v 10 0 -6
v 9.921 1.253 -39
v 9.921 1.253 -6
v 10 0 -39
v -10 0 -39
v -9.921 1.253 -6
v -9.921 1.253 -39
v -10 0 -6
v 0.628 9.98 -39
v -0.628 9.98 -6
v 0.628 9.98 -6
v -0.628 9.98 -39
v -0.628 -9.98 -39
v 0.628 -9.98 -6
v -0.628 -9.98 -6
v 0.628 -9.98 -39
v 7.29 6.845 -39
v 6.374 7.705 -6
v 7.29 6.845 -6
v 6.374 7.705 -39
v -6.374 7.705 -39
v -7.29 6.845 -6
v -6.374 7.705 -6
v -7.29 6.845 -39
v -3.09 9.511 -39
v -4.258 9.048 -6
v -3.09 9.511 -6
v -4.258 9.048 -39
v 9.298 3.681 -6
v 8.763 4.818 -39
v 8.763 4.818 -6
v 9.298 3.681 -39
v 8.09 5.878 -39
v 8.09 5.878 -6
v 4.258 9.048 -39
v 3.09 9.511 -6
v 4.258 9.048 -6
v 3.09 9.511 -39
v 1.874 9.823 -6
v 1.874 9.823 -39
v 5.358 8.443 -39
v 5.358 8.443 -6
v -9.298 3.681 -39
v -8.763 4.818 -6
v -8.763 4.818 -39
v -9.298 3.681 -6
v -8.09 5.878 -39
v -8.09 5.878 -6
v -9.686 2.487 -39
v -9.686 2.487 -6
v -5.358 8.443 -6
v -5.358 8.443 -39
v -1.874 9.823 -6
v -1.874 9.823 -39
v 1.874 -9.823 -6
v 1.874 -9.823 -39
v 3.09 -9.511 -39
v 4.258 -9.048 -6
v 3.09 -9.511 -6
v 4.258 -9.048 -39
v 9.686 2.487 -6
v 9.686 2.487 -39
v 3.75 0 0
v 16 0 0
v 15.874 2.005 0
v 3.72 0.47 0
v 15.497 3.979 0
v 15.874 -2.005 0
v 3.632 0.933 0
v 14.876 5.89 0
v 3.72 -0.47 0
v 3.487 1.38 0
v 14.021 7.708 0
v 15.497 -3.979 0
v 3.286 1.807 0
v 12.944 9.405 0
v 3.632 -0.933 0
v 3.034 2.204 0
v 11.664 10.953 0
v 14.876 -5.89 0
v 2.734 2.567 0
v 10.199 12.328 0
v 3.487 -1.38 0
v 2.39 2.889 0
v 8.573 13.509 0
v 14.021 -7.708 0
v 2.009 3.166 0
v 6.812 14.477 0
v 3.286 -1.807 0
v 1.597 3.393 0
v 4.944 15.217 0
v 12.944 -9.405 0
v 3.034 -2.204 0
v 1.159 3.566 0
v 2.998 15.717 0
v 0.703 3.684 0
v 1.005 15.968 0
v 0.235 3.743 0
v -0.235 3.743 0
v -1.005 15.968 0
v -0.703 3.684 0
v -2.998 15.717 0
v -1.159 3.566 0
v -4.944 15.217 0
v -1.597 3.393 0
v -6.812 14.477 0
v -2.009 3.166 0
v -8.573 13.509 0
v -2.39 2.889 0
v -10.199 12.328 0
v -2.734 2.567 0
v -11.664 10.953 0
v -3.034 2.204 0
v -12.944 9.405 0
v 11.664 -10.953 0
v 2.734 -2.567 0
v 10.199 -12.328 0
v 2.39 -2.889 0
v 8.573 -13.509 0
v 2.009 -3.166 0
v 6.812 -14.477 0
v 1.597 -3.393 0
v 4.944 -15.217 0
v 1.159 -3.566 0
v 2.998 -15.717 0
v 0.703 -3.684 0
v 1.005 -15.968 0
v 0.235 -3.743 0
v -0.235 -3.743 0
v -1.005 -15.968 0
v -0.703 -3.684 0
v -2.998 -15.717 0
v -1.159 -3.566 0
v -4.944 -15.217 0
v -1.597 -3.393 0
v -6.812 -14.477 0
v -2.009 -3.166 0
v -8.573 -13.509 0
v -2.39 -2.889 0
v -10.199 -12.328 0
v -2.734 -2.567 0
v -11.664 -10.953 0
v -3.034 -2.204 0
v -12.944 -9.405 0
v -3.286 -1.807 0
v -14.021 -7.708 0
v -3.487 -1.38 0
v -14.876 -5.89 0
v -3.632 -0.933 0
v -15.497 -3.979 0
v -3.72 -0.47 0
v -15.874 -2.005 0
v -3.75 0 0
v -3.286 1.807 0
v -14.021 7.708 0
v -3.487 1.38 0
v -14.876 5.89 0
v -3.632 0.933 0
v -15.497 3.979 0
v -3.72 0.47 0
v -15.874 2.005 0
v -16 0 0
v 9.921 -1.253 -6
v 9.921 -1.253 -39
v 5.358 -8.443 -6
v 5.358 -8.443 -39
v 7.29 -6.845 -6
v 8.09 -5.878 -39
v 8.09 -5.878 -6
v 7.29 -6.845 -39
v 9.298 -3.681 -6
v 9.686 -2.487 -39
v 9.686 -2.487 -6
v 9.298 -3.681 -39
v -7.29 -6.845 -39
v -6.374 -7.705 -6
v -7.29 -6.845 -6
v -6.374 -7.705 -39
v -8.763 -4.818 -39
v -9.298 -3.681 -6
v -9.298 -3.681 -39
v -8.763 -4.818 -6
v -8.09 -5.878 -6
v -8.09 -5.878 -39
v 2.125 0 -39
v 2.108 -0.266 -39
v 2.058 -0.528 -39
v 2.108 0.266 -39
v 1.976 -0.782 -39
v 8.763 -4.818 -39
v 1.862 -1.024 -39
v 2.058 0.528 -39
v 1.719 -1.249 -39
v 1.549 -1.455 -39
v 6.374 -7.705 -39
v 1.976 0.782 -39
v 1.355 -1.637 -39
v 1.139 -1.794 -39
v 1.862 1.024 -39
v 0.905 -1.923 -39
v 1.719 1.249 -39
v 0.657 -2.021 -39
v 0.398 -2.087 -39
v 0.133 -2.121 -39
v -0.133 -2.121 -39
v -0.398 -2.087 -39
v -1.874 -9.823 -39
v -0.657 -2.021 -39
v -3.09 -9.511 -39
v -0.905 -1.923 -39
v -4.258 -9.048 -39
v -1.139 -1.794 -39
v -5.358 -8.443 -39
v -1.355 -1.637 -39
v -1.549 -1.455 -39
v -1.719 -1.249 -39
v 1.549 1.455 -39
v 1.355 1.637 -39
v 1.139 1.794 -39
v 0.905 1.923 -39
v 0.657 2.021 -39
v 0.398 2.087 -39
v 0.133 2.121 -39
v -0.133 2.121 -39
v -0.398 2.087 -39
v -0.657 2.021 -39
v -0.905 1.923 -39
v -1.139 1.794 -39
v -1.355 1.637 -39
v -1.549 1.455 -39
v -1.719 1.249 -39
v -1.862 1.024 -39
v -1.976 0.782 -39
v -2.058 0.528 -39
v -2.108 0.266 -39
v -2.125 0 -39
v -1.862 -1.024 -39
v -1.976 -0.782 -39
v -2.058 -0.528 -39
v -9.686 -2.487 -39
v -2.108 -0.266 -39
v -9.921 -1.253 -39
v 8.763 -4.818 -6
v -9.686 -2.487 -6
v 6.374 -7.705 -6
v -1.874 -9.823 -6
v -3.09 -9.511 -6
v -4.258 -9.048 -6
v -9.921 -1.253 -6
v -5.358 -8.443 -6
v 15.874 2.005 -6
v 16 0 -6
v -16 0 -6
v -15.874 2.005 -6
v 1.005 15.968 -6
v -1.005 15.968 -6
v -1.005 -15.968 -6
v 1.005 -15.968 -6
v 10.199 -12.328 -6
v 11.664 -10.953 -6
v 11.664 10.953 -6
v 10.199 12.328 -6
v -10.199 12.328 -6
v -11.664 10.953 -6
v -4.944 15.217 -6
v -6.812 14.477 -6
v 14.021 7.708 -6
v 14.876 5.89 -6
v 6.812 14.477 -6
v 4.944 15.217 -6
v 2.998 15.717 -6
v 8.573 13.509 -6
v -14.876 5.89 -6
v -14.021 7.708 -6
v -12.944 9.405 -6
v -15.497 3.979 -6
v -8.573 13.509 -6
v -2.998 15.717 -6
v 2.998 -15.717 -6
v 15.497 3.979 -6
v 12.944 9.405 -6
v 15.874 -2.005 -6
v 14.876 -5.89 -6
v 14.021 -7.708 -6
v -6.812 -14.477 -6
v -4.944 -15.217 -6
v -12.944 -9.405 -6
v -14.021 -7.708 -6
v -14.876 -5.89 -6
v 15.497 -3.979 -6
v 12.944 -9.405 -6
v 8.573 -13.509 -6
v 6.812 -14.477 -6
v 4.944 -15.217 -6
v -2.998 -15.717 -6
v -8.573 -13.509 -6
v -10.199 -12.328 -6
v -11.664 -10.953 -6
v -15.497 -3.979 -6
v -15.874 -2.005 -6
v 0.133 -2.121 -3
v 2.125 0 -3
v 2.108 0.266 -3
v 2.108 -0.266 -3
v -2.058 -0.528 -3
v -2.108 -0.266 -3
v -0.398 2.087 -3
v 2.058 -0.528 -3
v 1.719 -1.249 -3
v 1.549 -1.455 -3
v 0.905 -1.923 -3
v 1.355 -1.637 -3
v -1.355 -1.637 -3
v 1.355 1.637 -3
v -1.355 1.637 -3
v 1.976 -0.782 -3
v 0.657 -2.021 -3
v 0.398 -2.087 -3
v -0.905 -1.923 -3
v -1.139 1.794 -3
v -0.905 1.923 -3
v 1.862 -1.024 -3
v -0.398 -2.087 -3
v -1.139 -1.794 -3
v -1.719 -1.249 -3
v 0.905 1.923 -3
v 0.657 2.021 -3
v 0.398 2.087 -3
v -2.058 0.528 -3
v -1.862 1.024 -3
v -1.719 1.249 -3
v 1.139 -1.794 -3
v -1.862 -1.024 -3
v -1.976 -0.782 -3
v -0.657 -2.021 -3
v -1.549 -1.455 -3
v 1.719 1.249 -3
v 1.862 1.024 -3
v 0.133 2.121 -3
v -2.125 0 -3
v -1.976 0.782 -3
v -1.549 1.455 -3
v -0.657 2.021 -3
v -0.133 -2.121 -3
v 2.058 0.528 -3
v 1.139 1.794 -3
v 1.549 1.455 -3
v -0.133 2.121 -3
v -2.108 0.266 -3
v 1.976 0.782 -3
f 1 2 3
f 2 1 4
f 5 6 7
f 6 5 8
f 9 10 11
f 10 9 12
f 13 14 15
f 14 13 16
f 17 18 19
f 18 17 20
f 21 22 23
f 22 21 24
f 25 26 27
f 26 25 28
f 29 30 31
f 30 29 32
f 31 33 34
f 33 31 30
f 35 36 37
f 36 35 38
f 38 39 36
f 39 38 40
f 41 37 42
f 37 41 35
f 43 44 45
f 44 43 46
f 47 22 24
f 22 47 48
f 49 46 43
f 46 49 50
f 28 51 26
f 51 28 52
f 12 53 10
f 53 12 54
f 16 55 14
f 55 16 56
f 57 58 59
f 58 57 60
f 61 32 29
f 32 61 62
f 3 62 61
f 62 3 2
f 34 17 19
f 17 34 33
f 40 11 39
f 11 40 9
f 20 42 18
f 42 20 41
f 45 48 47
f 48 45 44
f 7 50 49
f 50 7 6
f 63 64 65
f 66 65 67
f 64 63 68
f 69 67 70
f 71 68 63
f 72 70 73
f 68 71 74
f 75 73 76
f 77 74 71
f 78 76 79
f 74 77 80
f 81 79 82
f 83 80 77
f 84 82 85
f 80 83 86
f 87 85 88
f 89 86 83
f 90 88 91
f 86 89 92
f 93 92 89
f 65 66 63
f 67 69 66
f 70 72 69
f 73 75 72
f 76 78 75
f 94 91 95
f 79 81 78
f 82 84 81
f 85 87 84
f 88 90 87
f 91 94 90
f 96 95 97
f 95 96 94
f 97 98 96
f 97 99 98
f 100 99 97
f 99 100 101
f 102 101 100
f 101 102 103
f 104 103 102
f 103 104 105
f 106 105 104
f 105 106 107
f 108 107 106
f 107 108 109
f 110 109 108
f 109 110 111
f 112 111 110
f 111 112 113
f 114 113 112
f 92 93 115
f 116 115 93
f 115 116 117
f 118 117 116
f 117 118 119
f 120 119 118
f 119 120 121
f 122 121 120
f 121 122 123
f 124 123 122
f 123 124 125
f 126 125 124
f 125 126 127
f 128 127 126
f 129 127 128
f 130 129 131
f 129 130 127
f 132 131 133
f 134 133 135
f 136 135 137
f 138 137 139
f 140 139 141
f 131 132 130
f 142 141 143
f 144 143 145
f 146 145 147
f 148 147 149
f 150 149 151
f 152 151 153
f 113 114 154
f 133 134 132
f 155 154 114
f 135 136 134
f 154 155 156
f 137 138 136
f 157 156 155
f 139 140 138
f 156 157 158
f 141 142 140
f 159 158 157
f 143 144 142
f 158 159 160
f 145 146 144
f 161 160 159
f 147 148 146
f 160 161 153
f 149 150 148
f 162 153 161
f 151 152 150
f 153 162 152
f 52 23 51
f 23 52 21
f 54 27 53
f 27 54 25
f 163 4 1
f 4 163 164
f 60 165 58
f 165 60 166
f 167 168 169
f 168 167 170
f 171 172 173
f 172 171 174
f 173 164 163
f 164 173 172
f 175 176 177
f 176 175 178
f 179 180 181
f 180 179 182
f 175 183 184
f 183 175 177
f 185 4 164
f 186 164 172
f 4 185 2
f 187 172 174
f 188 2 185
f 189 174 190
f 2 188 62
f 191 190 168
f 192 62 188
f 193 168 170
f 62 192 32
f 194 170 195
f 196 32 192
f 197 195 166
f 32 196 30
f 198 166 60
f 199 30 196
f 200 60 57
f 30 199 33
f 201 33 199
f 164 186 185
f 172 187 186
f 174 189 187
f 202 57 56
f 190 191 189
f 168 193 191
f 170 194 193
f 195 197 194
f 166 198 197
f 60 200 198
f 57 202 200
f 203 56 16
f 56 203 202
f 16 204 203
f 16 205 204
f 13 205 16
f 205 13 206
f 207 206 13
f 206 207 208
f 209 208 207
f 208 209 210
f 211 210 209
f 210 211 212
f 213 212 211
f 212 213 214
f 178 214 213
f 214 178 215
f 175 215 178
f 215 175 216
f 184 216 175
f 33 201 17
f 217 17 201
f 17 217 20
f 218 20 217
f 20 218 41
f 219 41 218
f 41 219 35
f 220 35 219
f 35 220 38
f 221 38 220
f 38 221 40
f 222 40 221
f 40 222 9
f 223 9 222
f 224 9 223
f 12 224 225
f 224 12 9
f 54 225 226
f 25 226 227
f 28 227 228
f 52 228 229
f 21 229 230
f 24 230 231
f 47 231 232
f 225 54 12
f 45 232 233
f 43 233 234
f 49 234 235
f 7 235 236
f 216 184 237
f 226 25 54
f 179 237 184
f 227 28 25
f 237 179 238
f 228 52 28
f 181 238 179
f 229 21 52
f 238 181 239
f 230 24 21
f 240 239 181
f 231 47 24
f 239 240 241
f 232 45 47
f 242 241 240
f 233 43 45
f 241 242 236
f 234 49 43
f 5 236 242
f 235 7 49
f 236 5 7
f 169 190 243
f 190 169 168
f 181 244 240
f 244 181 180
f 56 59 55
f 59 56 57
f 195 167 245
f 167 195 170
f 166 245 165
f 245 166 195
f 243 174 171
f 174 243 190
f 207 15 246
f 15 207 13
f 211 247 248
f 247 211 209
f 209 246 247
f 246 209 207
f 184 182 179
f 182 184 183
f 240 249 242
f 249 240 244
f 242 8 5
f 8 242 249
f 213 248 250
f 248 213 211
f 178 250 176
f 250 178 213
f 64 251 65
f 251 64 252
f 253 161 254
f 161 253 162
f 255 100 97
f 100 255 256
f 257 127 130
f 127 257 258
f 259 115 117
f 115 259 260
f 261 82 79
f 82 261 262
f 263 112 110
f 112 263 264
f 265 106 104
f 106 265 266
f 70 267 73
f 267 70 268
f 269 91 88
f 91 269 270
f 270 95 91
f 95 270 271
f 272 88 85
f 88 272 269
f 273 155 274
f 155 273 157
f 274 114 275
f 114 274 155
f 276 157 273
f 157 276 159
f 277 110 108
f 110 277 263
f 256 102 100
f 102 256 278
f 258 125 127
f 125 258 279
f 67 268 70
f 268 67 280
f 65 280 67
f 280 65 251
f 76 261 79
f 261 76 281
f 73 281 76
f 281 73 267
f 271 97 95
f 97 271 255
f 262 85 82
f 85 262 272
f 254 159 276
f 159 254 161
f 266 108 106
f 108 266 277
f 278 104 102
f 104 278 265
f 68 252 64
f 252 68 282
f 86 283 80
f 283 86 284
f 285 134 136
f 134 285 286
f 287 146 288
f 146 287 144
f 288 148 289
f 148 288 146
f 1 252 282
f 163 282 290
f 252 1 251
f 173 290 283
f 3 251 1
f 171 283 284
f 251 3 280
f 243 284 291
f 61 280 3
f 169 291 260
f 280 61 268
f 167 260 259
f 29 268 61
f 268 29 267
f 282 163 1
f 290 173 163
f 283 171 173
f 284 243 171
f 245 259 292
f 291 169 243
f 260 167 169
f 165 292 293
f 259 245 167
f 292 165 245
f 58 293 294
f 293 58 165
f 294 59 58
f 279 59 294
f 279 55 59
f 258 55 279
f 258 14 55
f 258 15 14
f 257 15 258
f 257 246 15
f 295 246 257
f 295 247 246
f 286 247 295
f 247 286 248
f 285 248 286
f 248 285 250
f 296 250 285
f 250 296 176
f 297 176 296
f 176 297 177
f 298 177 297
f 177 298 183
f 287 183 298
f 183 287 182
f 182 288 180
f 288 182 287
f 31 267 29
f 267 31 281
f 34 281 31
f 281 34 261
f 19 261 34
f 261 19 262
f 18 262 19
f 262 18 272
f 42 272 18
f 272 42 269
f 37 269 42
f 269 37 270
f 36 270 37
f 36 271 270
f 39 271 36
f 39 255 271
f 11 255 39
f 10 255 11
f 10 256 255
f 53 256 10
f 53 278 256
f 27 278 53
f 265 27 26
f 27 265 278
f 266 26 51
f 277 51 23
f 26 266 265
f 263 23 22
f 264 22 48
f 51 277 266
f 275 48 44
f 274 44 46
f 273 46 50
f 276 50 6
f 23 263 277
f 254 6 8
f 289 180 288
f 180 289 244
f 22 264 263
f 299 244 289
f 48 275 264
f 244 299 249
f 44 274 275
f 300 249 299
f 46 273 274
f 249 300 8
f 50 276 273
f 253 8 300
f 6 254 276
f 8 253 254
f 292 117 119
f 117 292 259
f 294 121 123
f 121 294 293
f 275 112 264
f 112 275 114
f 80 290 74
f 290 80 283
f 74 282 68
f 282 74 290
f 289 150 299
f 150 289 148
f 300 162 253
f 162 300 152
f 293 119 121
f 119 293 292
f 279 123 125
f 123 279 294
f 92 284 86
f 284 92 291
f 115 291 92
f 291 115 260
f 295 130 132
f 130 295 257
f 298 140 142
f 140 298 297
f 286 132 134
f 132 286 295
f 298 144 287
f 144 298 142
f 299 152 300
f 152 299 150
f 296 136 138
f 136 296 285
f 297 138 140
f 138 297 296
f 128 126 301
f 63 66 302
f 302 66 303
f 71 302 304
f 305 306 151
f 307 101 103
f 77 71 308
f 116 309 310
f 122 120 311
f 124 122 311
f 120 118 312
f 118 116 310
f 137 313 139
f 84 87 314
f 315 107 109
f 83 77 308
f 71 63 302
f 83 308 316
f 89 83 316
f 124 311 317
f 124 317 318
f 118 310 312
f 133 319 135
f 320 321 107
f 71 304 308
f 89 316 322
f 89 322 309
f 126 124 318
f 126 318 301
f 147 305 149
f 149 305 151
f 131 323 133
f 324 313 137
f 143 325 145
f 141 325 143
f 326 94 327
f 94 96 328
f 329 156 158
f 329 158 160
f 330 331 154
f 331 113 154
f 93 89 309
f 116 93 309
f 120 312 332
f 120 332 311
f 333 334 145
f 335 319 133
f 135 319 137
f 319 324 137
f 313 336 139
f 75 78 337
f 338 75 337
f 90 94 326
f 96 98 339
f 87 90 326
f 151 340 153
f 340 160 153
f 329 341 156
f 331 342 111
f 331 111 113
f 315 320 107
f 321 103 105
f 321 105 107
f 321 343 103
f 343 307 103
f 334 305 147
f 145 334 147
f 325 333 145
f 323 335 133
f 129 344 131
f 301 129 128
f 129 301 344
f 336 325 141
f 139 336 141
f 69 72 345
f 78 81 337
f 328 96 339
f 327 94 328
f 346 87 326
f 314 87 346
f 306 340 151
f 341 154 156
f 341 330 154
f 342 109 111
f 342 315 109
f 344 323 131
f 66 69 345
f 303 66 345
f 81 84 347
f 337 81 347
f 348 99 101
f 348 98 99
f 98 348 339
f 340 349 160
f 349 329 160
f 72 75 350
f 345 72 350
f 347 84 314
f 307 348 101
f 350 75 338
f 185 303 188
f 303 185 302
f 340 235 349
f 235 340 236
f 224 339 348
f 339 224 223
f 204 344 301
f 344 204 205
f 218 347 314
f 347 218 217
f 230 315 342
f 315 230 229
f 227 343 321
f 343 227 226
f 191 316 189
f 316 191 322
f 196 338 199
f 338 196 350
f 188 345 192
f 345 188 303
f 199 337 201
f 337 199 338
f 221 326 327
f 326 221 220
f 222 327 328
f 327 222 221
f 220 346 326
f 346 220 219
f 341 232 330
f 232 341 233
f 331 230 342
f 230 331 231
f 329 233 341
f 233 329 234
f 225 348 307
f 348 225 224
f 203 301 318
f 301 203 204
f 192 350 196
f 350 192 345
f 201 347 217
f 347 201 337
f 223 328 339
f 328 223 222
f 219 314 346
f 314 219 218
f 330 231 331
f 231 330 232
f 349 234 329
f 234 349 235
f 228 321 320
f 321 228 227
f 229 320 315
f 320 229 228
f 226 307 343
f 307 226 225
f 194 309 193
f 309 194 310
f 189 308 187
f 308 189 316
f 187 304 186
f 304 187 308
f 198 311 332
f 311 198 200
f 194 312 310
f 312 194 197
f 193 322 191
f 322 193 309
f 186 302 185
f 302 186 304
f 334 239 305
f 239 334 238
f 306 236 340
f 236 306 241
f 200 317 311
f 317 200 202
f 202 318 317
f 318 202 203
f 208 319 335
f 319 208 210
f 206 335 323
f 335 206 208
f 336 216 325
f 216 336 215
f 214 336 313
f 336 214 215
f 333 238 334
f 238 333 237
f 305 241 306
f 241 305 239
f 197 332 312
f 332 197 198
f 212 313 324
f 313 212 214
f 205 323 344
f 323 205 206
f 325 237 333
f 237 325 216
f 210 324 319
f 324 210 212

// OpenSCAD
$fn = 50;


difference() {
	union() {
		translate(v = [0, 0, -39.0000000000]) {
			cylinder(h = 39, r = 10.0000000000);
		}
		translate(v = [0, 0, -6.0000000000]) {
			cylinder(h = 6, r = 16.0000000000);
		}
	}
	union() {
		translate(v = [0, 0, 0]) {
			rotate(a = [0, 0, 0]) {
				difference() {
					union() {
						#translate(v = [0, 0, -39.0000000000]) {
							cylinder(h = 39, r = 2.0000000000);
						}
						#translate(v = [0, 0, -3]) {
							cylinder(h = 3, r1 = 2.1250000000, r2 = 3.7500000000);
						}
						#translate(v = [0, 0, -39.0000000000]) {
							cylinder(h = 39, r = 2.1250000000);
						}
						#translate(v = [0, 0, -39.0000000000]) {
							cylinder(h = 39, r = 2.0000000000);
						}
					}
					union();
				}
			}
		}
	}
}
